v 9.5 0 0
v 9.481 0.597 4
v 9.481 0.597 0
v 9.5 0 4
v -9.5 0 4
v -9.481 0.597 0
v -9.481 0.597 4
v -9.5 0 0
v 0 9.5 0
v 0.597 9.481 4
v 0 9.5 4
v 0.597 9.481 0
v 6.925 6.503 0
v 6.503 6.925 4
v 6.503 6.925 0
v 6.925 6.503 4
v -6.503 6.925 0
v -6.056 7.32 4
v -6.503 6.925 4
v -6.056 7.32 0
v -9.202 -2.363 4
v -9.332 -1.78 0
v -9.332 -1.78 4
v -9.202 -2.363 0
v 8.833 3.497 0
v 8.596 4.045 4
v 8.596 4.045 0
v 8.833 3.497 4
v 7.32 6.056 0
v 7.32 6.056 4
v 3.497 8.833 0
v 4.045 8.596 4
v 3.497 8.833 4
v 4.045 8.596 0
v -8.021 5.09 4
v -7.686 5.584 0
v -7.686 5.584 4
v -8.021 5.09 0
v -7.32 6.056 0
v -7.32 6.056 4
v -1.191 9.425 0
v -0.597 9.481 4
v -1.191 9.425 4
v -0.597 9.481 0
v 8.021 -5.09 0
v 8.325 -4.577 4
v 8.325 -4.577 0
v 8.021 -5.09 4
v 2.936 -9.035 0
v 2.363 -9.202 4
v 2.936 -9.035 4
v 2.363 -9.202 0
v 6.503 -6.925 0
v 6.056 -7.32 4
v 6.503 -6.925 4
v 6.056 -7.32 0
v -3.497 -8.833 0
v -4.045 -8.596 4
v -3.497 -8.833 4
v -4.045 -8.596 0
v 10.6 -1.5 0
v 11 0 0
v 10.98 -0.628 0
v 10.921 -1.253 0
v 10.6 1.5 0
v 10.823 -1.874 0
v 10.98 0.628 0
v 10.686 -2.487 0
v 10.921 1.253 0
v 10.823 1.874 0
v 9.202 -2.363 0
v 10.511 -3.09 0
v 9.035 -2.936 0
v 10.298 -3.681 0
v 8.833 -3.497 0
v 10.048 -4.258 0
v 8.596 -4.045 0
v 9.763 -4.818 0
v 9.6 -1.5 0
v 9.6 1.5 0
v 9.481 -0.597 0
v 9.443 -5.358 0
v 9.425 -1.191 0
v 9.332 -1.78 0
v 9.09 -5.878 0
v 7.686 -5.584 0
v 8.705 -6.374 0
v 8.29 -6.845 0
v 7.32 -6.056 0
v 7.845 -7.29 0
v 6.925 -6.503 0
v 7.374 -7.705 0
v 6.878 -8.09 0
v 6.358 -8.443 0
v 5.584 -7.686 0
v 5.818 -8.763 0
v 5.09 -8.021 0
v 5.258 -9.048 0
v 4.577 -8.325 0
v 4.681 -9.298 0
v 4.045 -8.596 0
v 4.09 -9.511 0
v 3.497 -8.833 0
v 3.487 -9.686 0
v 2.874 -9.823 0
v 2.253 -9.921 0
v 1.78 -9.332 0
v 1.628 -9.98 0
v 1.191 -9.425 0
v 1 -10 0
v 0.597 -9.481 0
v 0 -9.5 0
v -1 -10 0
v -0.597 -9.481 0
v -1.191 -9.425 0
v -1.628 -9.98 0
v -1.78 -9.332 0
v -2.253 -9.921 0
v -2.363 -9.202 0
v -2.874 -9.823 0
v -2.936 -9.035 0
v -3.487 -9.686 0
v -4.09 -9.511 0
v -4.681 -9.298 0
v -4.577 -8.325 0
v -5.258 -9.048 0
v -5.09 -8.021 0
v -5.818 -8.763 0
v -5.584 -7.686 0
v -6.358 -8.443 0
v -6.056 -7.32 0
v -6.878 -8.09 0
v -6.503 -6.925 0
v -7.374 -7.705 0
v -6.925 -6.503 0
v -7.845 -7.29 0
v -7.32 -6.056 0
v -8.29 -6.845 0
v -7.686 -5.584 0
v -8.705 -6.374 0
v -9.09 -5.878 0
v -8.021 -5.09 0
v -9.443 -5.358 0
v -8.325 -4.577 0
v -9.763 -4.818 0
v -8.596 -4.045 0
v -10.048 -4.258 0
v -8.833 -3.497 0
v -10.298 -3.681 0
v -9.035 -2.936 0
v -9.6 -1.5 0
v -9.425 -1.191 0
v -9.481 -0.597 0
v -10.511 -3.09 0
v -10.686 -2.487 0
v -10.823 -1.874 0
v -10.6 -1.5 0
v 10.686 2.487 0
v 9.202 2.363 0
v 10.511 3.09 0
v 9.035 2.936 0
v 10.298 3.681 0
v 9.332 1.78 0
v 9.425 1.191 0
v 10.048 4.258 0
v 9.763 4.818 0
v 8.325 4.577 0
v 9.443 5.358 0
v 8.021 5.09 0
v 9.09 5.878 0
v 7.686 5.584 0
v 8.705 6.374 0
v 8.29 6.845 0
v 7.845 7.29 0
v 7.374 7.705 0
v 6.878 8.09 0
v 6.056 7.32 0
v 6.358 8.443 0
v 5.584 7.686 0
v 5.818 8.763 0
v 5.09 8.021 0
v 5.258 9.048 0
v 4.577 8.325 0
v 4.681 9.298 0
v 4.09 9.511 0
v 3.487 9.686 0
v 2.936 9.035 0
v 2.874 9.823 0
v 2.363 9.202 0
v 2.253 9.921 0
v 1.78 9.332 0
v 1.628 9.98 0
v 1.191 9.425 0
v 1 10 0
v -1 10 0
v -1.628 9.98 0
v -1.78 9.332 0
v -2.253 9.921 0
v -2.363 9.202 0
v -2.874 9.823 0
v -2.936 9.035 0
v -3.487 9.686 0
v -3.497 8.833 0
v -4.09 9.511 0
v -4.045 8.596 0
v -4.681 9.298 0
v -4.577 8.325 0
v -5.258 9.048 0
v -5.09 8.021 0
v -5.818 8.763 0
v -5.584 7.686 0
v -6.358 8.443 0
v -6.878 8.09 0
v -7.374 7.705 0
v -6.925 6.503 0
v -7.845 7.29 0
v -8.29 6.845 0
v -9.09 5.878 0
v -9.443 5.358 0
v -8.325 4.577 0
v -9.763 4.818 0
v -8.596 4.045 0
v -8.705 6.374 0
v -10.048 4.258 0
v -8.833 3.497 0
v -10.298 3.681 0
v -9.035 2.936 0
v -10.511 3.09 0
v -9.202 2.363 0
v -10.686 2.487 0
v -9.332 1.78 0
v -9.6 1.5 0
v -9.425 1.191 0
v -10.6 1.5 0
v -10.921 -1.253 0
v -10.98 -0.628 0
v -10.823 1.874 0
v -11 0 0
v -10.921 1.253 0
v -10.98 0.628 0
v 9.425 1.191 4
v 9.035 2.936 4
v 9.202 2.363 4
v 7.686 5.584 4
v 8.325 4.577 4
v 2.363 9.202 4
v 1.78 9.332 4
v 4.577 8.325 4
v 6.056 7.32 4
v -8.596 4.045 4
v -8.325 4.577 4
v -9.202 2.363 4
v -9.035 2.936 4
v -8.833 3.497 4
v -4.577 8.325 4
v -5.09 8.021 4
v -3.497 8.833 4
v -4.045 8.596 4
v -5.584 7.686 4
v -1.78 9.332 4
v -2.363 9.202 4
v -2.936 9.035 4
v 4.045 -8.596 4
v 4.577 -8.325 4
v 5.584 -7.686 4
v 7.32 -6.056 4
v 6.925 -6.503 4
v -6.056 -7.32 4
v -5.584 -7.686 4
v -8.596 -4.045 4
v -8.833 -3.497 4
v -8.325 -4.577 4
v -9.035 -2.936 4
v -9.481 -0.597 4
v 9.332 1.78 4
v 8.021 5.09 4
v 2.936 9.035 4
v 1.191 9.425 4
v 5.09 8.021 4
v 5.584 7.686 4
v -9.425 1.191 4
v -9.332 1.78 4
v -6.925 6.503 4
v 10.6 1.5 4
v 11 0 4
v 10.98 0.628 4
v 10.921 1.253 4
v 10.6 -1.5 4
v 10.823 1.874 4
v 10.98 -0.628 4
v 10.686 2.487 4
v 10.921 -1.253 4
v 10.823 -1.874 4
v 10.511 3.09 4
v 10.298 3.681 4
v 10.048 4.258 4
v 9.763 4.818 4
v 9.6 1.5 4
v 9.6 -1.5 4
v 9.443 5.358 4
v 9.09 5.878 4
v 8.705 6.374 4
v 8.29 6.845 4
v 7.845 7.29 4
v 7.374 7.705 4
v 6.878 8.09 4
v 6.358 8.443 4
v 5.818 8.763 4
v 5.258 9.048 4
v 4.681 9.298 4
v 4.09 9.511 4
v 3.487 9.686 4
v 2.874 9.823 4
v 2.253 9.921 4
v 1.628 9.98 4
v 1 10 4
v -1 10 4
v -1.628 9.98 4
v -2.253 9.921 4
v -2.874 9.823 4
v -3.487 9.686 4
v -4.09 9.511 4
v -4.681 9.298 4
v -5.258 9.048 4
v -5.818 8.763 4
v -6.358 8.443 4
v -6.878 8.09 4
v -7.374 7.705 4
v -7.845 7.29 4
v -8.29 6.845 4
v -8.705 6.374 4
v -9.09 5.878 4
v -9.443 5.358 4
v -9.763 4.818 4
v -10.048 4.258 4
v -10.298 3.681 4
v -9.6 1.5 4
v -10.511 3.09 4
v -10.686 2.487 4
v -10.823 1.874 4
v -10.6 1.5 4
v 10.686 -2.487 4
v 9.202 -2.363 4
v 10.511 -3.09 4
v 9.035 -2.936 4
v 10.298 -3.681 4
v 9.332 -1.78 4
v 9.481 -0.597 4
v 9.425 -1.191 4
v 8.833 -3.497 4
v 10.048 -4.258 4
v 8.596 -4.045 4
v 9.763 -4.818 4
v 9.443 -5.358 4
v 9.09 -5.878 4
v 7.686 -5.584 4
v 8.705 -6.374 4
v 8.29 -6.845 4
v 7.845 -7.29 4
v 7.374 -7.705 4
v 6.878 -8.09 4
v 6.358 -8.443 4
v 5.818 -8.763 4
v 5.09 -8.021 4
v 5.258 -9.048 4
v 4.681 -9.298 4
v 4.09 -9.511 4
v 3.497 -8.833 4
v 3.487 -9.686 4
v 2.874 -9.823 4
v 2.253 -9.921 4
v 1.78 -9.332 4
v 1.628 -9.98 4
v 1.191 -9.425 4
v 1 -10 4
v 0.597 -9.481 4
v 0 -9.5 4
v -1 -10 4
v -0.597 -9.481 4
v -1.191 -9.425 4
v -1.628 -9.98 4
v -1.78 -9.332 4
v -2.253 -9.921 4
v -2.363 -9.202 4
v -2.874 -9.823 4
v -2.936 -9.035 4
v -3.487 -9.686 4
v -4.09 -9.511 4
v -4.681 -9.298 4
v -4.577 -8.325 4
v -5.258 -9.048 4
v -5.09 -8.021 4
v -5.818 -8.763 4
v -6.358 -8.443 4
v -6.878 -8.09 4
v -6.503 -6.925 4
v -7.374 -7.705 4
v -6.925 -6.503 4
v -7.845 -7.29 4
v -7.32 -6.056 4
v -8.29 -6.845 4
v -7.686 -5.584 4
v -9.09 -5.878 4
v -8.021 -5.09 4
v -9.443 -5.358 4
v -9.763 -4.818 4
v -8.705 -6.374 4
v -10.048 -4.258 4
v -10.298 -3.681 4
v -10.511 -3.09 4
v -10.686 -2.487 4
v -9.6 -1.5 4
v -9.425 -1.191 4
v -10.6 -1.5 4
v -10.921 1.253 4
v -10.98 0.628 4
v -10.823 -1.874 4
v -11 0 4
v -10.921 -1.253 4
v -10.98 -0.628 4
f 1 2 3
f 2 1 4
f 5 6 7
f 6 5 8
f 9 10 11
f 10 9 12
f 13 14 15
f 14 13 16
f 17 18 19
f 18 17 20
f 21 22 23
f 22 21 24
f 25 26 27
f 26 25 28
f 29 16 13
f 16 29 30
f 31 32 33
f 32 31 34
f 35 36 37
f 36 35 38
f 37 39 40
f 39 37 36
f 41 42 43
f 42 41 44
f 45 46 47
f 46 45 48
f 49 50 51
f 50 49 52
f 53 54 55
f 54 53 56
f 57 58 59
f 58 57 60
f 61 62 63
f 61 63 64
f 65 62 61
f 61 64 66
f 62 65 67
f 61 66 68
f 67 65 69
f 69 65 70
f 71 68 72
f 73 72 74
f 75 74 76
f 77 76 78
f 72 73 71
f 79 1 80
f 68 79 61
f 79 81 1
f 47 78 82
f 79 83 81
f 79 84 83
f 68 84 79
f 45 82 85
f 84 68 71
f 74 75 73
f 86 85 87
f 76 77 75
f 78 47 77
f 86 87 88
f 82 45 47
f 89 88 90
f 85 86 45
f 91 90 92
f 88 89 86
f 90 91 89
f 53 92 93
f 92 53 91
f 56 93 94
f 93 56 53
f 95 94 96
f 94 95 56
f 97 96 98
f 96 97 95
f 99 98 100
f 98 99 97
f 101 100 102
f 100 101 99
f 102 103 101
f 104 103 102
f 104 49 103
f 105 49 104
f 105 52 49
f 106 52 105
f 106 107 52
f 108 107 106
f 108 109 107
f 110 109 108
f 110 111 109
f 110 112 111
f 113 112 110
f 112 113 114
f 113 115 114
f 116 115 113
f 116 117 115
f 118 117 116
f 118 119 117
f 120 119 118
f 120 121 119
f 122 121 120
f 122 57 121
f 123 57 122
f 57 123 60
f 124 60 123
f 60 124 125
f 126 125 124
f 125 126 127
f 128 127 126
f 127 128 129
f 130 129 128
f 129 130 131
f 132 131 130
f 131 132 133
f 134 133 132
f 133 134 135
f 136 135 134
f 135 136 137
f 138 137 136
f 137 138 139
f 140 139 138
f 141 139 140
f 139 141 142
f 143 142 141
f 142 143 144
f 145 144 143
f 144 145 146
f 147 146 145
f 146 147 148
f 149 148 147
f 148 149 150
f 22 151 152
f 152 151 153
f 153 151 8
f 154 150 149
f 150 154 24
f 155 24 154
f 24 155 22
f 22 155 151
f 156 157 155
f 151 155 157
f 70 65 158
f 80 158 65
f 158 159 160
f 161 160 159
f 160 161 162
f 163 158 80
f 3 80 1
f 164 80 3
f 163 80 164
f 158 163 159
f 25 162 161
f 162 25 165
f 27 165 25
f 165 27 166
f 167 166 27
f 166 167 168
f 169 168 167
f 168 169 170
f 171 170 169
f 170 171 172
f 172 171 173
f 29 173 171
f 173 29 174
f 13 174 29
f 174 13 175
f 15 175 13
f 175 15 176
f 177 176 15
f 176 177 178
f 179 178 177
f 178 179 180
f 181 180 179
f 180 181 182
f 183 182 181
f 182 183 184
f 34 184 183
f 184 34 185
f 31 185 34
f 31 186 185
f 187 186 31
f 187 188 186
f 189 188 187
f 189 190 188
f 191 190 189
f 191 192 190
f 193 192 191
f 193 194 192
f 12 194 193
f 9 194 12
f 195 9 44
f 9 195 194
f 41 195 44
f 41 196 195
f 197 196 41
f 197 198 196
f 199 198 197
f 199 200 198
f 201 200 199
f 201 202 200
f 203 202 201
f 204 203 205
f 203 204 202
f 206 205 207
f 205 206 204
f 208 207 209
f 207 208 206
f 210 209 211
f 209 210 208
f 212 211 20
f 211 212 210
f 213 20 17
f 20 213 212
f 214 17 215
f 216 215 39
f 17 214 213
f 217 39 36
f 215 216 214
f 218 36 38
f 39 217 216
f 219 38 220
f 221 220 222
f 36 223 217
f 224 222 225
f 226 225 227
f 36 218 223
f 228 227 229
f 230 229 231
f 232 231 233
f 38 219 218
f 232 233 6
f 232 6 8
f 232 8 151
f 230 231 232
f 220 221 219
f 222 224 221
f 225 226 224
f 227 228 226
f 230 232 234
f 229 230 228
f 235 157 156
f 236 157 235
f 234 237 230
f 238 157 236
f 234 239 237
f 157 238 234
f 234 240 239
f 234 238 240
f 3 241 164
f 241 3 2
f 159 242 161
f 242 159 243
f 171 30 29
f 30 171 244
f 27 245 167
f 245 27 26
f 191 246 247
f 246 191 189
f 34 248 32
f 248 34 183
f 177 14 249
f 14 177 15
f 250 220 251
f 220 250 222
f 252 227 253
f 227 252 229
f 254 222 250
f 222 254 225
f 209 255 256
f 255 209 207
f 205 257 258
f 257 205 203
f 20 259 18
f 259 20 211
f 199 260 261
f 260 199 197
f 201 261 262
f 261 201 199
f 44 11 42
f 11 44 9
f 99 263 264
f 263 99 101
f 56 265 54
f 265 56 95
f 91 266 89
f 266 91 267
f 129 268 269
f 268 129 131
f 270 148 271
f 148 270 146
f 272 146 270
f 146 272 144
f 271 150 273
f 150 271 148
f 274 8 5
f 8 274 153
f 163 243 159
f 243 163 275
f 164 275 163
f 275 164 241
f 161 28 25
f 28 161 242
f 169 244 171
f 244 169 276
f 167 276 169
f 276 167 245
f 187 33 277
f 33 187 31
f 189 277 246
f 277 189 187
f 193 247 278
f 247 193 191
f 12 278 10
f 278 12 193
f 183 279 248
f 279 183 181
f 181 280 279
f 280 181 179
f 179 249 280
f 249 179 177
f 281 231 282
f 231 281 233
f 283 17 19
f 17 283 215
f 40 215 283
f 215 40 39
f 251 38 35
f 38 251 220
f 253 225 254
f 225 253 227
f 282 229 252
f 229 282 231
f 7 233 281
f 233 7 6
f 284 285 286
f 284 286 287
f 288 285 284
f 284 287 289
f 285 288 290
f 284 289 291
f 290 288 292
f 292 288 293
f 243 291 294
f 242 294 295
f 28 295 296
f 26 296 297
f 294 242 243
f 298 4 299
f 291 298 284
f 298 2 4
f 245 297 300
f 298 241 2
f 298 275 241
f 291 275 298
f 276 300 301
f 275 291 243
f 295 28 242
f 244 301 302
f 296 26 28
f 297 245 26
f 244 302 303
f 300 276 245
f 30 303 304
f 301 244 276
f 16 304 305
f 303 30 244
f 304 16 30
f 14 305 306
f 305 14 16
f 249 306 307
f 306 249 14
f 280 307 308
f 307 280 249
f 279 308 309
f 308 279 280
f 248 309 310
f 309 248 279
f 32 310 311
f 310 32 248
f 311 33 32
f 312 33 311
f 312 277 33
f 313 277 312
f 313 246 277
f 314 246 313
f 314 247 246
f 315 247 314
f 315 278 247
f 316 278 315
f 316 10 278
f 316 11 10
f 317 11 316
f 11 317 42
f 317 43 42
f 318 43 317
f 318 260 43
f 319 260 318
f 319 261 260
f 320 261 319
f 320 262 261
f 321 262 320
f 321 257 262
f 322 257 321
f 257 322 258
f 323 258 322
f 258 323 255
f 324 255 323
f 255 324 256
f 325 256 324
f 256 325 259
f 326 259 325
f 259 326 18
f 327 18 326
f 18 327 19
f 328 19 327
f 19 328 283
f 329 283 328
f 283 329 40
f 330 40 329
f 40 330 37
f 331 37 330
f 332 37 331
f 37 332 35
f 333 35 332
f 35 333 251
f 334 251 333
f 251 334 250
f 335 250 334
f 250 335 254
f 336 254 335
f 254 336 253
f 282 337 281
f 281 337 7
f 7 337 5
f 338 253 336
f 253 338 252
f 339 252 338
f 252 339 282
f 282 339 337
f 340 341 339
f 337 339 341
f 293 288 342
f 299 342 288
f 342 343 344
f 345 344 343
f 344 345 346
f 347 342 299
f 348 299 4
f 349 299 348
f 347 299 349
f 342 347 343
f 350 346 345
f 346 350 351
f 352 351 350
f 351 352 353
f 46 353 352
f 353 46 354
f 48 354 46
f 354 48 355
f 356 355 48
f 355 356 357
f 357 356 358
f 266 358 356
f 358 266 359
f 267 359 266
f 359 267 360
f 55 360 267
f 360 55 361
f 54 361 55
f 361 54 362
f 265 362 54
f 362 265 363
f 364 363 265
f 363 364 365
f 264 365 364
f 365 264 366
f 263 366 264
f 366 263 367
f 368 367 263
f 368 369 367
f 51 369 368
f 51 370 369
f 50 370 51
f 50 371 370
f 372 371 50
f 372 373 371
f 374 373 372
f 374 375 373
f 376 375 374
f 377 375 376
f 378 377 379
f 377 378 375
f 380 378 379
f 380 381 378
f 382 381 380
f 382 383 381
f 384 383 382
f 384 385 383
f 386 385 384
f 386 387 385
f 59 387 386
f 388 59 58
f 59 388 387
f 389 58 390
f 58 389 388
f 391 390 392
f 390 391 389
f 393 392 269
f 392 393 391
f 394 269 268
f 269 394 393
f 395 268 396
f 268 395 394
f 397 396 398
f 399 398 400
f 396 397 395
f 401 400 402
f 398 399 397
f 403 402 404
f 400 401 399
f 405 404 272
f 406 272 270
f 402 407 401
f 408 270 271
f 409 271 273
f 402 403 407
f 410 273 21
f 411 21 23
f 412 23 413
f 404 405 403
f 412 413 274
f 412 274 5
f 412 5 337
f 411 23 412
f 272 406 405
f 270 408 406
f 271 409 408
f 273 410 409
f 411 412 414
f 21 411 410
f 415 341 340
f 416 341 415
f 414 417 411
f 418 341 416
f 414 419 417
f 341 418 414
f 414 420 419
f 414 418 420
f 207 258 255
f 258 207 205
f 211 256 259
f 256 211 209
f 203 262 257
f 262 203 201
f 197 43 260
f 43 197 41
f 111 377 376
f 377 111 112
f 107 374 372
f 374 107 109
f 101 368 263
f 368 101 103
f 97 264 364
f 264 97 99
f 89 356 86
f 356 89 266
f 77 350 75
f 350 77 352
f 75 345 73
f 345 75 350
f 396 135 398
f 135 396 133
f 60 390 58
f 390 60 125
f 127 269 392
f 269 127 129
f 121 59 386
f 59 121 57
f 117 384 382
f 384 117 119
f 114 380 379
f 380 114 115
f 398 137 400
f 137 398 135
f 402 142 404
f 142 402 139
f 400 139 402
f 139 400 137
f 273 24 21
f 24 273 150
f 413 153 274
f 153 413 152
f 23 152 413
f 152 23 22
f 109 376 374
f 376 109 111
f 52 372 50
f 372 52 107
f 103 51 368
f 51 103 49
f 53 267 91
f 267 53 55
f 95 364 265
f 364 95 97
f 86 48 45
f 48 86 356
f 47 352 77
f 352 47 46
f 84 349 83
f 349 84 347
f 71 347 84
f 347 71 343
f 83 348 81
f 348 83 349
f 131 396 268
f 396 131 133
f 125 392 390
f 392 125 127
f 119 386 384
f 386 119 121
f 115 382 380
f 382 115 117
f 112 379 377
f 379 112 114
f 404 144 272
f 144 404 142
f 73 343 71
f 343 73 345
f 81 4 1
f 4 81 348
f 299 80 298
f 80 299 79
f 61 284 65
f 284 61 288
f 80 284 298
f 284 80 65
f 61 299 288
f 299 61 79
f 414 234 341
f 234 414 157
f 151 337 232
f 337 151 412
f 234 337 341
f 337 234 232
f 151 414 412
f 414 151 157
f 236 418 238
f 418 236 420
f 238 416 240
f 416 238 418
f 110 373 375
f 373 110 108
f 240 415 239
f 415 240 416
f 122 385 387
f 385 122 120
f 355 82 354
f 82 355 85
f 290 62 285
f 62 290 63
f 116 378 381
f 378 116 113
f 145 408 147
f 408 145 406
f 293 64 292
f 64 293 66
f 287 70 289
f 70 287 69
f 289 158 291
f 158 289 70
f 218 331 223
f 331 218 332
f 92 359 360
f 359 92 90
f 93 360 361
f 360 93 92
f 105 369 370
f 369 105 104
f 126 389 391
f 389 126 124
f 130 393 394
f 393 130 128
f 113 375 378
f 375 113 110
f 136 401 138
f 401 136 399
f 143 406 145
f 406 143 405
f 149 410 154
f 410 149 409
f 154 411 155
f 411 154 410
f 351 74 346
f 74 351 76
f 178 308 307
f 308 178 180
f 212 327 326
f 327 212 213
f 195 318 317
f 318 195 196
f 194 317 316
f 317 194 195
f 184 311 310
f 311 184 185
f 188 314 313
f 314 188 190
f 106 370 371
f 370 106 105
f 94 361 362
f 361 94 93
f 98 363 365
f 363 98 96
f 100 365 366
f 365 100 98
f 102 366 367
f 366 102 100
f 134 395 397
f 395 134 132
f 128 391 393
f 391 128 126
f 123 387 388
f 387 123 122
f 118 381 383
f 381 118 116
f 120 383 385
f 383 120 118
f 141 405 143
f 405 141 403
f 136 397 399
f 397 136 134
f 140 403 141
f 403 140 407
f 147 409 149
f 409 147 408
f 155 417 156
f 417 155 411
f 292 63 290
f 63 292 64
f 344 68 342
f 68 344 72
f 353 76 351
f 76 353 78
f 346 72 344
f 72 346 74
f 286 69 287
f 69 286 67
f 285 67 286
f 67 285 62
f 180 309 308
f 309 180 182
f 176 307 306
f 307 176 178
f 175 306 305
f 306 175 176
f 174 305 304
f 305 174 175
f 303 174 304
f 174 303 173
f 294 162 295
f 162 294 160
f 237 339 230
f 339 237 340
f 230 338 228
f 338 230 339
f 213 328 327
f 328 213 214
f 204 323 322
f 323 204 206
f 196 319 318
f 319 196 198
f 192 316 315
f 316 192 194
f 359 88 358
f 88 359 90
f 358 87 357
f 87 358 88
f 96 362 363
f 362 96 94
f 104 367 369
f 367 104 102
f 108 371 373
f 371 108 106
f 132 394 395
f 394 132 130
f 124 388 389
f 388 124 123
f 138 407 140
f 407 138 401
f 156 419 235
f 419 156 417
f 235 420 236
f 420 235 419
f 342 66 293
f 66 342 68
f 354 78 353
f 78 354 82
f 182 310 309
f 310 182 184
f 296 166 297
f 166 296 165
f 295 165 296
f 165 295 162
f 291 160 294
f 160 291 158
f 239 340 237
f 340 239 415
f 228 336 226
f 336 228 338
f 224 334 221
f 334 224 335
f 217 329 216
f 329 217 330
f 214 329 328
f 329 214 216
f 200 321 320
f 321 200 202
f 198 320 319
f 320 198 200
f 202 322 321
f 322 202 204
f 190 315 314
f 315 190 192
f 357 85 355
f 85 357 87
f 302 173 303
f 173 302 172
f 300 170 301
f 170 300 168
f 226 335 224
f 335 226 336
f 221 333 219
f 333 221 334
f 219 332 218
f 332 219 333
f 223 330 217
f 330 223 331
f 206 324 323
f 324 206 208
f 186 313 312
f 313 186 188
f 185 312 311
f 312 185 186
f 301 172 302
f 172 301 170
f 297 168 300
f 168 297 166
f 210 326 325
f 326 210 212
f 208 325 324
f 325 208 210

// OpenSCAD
difference(){
    hull(){
    translate([-1,0,0]){
    cylinder(4,20/2,20/2,$fn=100);}
    translate([1,0,0]){
    cylinder(4,20/2,20/2,$fn=100);}
     }
    union(){
        cylinder(4,19/2,19/2,$fn=100);
        translate([10-.4,-1.5,]){
            cube([1,3,4]);
    }

        translate([-10-.6,-1.5,0]){
            cube([1,3,4]);
    }   
    }
}
